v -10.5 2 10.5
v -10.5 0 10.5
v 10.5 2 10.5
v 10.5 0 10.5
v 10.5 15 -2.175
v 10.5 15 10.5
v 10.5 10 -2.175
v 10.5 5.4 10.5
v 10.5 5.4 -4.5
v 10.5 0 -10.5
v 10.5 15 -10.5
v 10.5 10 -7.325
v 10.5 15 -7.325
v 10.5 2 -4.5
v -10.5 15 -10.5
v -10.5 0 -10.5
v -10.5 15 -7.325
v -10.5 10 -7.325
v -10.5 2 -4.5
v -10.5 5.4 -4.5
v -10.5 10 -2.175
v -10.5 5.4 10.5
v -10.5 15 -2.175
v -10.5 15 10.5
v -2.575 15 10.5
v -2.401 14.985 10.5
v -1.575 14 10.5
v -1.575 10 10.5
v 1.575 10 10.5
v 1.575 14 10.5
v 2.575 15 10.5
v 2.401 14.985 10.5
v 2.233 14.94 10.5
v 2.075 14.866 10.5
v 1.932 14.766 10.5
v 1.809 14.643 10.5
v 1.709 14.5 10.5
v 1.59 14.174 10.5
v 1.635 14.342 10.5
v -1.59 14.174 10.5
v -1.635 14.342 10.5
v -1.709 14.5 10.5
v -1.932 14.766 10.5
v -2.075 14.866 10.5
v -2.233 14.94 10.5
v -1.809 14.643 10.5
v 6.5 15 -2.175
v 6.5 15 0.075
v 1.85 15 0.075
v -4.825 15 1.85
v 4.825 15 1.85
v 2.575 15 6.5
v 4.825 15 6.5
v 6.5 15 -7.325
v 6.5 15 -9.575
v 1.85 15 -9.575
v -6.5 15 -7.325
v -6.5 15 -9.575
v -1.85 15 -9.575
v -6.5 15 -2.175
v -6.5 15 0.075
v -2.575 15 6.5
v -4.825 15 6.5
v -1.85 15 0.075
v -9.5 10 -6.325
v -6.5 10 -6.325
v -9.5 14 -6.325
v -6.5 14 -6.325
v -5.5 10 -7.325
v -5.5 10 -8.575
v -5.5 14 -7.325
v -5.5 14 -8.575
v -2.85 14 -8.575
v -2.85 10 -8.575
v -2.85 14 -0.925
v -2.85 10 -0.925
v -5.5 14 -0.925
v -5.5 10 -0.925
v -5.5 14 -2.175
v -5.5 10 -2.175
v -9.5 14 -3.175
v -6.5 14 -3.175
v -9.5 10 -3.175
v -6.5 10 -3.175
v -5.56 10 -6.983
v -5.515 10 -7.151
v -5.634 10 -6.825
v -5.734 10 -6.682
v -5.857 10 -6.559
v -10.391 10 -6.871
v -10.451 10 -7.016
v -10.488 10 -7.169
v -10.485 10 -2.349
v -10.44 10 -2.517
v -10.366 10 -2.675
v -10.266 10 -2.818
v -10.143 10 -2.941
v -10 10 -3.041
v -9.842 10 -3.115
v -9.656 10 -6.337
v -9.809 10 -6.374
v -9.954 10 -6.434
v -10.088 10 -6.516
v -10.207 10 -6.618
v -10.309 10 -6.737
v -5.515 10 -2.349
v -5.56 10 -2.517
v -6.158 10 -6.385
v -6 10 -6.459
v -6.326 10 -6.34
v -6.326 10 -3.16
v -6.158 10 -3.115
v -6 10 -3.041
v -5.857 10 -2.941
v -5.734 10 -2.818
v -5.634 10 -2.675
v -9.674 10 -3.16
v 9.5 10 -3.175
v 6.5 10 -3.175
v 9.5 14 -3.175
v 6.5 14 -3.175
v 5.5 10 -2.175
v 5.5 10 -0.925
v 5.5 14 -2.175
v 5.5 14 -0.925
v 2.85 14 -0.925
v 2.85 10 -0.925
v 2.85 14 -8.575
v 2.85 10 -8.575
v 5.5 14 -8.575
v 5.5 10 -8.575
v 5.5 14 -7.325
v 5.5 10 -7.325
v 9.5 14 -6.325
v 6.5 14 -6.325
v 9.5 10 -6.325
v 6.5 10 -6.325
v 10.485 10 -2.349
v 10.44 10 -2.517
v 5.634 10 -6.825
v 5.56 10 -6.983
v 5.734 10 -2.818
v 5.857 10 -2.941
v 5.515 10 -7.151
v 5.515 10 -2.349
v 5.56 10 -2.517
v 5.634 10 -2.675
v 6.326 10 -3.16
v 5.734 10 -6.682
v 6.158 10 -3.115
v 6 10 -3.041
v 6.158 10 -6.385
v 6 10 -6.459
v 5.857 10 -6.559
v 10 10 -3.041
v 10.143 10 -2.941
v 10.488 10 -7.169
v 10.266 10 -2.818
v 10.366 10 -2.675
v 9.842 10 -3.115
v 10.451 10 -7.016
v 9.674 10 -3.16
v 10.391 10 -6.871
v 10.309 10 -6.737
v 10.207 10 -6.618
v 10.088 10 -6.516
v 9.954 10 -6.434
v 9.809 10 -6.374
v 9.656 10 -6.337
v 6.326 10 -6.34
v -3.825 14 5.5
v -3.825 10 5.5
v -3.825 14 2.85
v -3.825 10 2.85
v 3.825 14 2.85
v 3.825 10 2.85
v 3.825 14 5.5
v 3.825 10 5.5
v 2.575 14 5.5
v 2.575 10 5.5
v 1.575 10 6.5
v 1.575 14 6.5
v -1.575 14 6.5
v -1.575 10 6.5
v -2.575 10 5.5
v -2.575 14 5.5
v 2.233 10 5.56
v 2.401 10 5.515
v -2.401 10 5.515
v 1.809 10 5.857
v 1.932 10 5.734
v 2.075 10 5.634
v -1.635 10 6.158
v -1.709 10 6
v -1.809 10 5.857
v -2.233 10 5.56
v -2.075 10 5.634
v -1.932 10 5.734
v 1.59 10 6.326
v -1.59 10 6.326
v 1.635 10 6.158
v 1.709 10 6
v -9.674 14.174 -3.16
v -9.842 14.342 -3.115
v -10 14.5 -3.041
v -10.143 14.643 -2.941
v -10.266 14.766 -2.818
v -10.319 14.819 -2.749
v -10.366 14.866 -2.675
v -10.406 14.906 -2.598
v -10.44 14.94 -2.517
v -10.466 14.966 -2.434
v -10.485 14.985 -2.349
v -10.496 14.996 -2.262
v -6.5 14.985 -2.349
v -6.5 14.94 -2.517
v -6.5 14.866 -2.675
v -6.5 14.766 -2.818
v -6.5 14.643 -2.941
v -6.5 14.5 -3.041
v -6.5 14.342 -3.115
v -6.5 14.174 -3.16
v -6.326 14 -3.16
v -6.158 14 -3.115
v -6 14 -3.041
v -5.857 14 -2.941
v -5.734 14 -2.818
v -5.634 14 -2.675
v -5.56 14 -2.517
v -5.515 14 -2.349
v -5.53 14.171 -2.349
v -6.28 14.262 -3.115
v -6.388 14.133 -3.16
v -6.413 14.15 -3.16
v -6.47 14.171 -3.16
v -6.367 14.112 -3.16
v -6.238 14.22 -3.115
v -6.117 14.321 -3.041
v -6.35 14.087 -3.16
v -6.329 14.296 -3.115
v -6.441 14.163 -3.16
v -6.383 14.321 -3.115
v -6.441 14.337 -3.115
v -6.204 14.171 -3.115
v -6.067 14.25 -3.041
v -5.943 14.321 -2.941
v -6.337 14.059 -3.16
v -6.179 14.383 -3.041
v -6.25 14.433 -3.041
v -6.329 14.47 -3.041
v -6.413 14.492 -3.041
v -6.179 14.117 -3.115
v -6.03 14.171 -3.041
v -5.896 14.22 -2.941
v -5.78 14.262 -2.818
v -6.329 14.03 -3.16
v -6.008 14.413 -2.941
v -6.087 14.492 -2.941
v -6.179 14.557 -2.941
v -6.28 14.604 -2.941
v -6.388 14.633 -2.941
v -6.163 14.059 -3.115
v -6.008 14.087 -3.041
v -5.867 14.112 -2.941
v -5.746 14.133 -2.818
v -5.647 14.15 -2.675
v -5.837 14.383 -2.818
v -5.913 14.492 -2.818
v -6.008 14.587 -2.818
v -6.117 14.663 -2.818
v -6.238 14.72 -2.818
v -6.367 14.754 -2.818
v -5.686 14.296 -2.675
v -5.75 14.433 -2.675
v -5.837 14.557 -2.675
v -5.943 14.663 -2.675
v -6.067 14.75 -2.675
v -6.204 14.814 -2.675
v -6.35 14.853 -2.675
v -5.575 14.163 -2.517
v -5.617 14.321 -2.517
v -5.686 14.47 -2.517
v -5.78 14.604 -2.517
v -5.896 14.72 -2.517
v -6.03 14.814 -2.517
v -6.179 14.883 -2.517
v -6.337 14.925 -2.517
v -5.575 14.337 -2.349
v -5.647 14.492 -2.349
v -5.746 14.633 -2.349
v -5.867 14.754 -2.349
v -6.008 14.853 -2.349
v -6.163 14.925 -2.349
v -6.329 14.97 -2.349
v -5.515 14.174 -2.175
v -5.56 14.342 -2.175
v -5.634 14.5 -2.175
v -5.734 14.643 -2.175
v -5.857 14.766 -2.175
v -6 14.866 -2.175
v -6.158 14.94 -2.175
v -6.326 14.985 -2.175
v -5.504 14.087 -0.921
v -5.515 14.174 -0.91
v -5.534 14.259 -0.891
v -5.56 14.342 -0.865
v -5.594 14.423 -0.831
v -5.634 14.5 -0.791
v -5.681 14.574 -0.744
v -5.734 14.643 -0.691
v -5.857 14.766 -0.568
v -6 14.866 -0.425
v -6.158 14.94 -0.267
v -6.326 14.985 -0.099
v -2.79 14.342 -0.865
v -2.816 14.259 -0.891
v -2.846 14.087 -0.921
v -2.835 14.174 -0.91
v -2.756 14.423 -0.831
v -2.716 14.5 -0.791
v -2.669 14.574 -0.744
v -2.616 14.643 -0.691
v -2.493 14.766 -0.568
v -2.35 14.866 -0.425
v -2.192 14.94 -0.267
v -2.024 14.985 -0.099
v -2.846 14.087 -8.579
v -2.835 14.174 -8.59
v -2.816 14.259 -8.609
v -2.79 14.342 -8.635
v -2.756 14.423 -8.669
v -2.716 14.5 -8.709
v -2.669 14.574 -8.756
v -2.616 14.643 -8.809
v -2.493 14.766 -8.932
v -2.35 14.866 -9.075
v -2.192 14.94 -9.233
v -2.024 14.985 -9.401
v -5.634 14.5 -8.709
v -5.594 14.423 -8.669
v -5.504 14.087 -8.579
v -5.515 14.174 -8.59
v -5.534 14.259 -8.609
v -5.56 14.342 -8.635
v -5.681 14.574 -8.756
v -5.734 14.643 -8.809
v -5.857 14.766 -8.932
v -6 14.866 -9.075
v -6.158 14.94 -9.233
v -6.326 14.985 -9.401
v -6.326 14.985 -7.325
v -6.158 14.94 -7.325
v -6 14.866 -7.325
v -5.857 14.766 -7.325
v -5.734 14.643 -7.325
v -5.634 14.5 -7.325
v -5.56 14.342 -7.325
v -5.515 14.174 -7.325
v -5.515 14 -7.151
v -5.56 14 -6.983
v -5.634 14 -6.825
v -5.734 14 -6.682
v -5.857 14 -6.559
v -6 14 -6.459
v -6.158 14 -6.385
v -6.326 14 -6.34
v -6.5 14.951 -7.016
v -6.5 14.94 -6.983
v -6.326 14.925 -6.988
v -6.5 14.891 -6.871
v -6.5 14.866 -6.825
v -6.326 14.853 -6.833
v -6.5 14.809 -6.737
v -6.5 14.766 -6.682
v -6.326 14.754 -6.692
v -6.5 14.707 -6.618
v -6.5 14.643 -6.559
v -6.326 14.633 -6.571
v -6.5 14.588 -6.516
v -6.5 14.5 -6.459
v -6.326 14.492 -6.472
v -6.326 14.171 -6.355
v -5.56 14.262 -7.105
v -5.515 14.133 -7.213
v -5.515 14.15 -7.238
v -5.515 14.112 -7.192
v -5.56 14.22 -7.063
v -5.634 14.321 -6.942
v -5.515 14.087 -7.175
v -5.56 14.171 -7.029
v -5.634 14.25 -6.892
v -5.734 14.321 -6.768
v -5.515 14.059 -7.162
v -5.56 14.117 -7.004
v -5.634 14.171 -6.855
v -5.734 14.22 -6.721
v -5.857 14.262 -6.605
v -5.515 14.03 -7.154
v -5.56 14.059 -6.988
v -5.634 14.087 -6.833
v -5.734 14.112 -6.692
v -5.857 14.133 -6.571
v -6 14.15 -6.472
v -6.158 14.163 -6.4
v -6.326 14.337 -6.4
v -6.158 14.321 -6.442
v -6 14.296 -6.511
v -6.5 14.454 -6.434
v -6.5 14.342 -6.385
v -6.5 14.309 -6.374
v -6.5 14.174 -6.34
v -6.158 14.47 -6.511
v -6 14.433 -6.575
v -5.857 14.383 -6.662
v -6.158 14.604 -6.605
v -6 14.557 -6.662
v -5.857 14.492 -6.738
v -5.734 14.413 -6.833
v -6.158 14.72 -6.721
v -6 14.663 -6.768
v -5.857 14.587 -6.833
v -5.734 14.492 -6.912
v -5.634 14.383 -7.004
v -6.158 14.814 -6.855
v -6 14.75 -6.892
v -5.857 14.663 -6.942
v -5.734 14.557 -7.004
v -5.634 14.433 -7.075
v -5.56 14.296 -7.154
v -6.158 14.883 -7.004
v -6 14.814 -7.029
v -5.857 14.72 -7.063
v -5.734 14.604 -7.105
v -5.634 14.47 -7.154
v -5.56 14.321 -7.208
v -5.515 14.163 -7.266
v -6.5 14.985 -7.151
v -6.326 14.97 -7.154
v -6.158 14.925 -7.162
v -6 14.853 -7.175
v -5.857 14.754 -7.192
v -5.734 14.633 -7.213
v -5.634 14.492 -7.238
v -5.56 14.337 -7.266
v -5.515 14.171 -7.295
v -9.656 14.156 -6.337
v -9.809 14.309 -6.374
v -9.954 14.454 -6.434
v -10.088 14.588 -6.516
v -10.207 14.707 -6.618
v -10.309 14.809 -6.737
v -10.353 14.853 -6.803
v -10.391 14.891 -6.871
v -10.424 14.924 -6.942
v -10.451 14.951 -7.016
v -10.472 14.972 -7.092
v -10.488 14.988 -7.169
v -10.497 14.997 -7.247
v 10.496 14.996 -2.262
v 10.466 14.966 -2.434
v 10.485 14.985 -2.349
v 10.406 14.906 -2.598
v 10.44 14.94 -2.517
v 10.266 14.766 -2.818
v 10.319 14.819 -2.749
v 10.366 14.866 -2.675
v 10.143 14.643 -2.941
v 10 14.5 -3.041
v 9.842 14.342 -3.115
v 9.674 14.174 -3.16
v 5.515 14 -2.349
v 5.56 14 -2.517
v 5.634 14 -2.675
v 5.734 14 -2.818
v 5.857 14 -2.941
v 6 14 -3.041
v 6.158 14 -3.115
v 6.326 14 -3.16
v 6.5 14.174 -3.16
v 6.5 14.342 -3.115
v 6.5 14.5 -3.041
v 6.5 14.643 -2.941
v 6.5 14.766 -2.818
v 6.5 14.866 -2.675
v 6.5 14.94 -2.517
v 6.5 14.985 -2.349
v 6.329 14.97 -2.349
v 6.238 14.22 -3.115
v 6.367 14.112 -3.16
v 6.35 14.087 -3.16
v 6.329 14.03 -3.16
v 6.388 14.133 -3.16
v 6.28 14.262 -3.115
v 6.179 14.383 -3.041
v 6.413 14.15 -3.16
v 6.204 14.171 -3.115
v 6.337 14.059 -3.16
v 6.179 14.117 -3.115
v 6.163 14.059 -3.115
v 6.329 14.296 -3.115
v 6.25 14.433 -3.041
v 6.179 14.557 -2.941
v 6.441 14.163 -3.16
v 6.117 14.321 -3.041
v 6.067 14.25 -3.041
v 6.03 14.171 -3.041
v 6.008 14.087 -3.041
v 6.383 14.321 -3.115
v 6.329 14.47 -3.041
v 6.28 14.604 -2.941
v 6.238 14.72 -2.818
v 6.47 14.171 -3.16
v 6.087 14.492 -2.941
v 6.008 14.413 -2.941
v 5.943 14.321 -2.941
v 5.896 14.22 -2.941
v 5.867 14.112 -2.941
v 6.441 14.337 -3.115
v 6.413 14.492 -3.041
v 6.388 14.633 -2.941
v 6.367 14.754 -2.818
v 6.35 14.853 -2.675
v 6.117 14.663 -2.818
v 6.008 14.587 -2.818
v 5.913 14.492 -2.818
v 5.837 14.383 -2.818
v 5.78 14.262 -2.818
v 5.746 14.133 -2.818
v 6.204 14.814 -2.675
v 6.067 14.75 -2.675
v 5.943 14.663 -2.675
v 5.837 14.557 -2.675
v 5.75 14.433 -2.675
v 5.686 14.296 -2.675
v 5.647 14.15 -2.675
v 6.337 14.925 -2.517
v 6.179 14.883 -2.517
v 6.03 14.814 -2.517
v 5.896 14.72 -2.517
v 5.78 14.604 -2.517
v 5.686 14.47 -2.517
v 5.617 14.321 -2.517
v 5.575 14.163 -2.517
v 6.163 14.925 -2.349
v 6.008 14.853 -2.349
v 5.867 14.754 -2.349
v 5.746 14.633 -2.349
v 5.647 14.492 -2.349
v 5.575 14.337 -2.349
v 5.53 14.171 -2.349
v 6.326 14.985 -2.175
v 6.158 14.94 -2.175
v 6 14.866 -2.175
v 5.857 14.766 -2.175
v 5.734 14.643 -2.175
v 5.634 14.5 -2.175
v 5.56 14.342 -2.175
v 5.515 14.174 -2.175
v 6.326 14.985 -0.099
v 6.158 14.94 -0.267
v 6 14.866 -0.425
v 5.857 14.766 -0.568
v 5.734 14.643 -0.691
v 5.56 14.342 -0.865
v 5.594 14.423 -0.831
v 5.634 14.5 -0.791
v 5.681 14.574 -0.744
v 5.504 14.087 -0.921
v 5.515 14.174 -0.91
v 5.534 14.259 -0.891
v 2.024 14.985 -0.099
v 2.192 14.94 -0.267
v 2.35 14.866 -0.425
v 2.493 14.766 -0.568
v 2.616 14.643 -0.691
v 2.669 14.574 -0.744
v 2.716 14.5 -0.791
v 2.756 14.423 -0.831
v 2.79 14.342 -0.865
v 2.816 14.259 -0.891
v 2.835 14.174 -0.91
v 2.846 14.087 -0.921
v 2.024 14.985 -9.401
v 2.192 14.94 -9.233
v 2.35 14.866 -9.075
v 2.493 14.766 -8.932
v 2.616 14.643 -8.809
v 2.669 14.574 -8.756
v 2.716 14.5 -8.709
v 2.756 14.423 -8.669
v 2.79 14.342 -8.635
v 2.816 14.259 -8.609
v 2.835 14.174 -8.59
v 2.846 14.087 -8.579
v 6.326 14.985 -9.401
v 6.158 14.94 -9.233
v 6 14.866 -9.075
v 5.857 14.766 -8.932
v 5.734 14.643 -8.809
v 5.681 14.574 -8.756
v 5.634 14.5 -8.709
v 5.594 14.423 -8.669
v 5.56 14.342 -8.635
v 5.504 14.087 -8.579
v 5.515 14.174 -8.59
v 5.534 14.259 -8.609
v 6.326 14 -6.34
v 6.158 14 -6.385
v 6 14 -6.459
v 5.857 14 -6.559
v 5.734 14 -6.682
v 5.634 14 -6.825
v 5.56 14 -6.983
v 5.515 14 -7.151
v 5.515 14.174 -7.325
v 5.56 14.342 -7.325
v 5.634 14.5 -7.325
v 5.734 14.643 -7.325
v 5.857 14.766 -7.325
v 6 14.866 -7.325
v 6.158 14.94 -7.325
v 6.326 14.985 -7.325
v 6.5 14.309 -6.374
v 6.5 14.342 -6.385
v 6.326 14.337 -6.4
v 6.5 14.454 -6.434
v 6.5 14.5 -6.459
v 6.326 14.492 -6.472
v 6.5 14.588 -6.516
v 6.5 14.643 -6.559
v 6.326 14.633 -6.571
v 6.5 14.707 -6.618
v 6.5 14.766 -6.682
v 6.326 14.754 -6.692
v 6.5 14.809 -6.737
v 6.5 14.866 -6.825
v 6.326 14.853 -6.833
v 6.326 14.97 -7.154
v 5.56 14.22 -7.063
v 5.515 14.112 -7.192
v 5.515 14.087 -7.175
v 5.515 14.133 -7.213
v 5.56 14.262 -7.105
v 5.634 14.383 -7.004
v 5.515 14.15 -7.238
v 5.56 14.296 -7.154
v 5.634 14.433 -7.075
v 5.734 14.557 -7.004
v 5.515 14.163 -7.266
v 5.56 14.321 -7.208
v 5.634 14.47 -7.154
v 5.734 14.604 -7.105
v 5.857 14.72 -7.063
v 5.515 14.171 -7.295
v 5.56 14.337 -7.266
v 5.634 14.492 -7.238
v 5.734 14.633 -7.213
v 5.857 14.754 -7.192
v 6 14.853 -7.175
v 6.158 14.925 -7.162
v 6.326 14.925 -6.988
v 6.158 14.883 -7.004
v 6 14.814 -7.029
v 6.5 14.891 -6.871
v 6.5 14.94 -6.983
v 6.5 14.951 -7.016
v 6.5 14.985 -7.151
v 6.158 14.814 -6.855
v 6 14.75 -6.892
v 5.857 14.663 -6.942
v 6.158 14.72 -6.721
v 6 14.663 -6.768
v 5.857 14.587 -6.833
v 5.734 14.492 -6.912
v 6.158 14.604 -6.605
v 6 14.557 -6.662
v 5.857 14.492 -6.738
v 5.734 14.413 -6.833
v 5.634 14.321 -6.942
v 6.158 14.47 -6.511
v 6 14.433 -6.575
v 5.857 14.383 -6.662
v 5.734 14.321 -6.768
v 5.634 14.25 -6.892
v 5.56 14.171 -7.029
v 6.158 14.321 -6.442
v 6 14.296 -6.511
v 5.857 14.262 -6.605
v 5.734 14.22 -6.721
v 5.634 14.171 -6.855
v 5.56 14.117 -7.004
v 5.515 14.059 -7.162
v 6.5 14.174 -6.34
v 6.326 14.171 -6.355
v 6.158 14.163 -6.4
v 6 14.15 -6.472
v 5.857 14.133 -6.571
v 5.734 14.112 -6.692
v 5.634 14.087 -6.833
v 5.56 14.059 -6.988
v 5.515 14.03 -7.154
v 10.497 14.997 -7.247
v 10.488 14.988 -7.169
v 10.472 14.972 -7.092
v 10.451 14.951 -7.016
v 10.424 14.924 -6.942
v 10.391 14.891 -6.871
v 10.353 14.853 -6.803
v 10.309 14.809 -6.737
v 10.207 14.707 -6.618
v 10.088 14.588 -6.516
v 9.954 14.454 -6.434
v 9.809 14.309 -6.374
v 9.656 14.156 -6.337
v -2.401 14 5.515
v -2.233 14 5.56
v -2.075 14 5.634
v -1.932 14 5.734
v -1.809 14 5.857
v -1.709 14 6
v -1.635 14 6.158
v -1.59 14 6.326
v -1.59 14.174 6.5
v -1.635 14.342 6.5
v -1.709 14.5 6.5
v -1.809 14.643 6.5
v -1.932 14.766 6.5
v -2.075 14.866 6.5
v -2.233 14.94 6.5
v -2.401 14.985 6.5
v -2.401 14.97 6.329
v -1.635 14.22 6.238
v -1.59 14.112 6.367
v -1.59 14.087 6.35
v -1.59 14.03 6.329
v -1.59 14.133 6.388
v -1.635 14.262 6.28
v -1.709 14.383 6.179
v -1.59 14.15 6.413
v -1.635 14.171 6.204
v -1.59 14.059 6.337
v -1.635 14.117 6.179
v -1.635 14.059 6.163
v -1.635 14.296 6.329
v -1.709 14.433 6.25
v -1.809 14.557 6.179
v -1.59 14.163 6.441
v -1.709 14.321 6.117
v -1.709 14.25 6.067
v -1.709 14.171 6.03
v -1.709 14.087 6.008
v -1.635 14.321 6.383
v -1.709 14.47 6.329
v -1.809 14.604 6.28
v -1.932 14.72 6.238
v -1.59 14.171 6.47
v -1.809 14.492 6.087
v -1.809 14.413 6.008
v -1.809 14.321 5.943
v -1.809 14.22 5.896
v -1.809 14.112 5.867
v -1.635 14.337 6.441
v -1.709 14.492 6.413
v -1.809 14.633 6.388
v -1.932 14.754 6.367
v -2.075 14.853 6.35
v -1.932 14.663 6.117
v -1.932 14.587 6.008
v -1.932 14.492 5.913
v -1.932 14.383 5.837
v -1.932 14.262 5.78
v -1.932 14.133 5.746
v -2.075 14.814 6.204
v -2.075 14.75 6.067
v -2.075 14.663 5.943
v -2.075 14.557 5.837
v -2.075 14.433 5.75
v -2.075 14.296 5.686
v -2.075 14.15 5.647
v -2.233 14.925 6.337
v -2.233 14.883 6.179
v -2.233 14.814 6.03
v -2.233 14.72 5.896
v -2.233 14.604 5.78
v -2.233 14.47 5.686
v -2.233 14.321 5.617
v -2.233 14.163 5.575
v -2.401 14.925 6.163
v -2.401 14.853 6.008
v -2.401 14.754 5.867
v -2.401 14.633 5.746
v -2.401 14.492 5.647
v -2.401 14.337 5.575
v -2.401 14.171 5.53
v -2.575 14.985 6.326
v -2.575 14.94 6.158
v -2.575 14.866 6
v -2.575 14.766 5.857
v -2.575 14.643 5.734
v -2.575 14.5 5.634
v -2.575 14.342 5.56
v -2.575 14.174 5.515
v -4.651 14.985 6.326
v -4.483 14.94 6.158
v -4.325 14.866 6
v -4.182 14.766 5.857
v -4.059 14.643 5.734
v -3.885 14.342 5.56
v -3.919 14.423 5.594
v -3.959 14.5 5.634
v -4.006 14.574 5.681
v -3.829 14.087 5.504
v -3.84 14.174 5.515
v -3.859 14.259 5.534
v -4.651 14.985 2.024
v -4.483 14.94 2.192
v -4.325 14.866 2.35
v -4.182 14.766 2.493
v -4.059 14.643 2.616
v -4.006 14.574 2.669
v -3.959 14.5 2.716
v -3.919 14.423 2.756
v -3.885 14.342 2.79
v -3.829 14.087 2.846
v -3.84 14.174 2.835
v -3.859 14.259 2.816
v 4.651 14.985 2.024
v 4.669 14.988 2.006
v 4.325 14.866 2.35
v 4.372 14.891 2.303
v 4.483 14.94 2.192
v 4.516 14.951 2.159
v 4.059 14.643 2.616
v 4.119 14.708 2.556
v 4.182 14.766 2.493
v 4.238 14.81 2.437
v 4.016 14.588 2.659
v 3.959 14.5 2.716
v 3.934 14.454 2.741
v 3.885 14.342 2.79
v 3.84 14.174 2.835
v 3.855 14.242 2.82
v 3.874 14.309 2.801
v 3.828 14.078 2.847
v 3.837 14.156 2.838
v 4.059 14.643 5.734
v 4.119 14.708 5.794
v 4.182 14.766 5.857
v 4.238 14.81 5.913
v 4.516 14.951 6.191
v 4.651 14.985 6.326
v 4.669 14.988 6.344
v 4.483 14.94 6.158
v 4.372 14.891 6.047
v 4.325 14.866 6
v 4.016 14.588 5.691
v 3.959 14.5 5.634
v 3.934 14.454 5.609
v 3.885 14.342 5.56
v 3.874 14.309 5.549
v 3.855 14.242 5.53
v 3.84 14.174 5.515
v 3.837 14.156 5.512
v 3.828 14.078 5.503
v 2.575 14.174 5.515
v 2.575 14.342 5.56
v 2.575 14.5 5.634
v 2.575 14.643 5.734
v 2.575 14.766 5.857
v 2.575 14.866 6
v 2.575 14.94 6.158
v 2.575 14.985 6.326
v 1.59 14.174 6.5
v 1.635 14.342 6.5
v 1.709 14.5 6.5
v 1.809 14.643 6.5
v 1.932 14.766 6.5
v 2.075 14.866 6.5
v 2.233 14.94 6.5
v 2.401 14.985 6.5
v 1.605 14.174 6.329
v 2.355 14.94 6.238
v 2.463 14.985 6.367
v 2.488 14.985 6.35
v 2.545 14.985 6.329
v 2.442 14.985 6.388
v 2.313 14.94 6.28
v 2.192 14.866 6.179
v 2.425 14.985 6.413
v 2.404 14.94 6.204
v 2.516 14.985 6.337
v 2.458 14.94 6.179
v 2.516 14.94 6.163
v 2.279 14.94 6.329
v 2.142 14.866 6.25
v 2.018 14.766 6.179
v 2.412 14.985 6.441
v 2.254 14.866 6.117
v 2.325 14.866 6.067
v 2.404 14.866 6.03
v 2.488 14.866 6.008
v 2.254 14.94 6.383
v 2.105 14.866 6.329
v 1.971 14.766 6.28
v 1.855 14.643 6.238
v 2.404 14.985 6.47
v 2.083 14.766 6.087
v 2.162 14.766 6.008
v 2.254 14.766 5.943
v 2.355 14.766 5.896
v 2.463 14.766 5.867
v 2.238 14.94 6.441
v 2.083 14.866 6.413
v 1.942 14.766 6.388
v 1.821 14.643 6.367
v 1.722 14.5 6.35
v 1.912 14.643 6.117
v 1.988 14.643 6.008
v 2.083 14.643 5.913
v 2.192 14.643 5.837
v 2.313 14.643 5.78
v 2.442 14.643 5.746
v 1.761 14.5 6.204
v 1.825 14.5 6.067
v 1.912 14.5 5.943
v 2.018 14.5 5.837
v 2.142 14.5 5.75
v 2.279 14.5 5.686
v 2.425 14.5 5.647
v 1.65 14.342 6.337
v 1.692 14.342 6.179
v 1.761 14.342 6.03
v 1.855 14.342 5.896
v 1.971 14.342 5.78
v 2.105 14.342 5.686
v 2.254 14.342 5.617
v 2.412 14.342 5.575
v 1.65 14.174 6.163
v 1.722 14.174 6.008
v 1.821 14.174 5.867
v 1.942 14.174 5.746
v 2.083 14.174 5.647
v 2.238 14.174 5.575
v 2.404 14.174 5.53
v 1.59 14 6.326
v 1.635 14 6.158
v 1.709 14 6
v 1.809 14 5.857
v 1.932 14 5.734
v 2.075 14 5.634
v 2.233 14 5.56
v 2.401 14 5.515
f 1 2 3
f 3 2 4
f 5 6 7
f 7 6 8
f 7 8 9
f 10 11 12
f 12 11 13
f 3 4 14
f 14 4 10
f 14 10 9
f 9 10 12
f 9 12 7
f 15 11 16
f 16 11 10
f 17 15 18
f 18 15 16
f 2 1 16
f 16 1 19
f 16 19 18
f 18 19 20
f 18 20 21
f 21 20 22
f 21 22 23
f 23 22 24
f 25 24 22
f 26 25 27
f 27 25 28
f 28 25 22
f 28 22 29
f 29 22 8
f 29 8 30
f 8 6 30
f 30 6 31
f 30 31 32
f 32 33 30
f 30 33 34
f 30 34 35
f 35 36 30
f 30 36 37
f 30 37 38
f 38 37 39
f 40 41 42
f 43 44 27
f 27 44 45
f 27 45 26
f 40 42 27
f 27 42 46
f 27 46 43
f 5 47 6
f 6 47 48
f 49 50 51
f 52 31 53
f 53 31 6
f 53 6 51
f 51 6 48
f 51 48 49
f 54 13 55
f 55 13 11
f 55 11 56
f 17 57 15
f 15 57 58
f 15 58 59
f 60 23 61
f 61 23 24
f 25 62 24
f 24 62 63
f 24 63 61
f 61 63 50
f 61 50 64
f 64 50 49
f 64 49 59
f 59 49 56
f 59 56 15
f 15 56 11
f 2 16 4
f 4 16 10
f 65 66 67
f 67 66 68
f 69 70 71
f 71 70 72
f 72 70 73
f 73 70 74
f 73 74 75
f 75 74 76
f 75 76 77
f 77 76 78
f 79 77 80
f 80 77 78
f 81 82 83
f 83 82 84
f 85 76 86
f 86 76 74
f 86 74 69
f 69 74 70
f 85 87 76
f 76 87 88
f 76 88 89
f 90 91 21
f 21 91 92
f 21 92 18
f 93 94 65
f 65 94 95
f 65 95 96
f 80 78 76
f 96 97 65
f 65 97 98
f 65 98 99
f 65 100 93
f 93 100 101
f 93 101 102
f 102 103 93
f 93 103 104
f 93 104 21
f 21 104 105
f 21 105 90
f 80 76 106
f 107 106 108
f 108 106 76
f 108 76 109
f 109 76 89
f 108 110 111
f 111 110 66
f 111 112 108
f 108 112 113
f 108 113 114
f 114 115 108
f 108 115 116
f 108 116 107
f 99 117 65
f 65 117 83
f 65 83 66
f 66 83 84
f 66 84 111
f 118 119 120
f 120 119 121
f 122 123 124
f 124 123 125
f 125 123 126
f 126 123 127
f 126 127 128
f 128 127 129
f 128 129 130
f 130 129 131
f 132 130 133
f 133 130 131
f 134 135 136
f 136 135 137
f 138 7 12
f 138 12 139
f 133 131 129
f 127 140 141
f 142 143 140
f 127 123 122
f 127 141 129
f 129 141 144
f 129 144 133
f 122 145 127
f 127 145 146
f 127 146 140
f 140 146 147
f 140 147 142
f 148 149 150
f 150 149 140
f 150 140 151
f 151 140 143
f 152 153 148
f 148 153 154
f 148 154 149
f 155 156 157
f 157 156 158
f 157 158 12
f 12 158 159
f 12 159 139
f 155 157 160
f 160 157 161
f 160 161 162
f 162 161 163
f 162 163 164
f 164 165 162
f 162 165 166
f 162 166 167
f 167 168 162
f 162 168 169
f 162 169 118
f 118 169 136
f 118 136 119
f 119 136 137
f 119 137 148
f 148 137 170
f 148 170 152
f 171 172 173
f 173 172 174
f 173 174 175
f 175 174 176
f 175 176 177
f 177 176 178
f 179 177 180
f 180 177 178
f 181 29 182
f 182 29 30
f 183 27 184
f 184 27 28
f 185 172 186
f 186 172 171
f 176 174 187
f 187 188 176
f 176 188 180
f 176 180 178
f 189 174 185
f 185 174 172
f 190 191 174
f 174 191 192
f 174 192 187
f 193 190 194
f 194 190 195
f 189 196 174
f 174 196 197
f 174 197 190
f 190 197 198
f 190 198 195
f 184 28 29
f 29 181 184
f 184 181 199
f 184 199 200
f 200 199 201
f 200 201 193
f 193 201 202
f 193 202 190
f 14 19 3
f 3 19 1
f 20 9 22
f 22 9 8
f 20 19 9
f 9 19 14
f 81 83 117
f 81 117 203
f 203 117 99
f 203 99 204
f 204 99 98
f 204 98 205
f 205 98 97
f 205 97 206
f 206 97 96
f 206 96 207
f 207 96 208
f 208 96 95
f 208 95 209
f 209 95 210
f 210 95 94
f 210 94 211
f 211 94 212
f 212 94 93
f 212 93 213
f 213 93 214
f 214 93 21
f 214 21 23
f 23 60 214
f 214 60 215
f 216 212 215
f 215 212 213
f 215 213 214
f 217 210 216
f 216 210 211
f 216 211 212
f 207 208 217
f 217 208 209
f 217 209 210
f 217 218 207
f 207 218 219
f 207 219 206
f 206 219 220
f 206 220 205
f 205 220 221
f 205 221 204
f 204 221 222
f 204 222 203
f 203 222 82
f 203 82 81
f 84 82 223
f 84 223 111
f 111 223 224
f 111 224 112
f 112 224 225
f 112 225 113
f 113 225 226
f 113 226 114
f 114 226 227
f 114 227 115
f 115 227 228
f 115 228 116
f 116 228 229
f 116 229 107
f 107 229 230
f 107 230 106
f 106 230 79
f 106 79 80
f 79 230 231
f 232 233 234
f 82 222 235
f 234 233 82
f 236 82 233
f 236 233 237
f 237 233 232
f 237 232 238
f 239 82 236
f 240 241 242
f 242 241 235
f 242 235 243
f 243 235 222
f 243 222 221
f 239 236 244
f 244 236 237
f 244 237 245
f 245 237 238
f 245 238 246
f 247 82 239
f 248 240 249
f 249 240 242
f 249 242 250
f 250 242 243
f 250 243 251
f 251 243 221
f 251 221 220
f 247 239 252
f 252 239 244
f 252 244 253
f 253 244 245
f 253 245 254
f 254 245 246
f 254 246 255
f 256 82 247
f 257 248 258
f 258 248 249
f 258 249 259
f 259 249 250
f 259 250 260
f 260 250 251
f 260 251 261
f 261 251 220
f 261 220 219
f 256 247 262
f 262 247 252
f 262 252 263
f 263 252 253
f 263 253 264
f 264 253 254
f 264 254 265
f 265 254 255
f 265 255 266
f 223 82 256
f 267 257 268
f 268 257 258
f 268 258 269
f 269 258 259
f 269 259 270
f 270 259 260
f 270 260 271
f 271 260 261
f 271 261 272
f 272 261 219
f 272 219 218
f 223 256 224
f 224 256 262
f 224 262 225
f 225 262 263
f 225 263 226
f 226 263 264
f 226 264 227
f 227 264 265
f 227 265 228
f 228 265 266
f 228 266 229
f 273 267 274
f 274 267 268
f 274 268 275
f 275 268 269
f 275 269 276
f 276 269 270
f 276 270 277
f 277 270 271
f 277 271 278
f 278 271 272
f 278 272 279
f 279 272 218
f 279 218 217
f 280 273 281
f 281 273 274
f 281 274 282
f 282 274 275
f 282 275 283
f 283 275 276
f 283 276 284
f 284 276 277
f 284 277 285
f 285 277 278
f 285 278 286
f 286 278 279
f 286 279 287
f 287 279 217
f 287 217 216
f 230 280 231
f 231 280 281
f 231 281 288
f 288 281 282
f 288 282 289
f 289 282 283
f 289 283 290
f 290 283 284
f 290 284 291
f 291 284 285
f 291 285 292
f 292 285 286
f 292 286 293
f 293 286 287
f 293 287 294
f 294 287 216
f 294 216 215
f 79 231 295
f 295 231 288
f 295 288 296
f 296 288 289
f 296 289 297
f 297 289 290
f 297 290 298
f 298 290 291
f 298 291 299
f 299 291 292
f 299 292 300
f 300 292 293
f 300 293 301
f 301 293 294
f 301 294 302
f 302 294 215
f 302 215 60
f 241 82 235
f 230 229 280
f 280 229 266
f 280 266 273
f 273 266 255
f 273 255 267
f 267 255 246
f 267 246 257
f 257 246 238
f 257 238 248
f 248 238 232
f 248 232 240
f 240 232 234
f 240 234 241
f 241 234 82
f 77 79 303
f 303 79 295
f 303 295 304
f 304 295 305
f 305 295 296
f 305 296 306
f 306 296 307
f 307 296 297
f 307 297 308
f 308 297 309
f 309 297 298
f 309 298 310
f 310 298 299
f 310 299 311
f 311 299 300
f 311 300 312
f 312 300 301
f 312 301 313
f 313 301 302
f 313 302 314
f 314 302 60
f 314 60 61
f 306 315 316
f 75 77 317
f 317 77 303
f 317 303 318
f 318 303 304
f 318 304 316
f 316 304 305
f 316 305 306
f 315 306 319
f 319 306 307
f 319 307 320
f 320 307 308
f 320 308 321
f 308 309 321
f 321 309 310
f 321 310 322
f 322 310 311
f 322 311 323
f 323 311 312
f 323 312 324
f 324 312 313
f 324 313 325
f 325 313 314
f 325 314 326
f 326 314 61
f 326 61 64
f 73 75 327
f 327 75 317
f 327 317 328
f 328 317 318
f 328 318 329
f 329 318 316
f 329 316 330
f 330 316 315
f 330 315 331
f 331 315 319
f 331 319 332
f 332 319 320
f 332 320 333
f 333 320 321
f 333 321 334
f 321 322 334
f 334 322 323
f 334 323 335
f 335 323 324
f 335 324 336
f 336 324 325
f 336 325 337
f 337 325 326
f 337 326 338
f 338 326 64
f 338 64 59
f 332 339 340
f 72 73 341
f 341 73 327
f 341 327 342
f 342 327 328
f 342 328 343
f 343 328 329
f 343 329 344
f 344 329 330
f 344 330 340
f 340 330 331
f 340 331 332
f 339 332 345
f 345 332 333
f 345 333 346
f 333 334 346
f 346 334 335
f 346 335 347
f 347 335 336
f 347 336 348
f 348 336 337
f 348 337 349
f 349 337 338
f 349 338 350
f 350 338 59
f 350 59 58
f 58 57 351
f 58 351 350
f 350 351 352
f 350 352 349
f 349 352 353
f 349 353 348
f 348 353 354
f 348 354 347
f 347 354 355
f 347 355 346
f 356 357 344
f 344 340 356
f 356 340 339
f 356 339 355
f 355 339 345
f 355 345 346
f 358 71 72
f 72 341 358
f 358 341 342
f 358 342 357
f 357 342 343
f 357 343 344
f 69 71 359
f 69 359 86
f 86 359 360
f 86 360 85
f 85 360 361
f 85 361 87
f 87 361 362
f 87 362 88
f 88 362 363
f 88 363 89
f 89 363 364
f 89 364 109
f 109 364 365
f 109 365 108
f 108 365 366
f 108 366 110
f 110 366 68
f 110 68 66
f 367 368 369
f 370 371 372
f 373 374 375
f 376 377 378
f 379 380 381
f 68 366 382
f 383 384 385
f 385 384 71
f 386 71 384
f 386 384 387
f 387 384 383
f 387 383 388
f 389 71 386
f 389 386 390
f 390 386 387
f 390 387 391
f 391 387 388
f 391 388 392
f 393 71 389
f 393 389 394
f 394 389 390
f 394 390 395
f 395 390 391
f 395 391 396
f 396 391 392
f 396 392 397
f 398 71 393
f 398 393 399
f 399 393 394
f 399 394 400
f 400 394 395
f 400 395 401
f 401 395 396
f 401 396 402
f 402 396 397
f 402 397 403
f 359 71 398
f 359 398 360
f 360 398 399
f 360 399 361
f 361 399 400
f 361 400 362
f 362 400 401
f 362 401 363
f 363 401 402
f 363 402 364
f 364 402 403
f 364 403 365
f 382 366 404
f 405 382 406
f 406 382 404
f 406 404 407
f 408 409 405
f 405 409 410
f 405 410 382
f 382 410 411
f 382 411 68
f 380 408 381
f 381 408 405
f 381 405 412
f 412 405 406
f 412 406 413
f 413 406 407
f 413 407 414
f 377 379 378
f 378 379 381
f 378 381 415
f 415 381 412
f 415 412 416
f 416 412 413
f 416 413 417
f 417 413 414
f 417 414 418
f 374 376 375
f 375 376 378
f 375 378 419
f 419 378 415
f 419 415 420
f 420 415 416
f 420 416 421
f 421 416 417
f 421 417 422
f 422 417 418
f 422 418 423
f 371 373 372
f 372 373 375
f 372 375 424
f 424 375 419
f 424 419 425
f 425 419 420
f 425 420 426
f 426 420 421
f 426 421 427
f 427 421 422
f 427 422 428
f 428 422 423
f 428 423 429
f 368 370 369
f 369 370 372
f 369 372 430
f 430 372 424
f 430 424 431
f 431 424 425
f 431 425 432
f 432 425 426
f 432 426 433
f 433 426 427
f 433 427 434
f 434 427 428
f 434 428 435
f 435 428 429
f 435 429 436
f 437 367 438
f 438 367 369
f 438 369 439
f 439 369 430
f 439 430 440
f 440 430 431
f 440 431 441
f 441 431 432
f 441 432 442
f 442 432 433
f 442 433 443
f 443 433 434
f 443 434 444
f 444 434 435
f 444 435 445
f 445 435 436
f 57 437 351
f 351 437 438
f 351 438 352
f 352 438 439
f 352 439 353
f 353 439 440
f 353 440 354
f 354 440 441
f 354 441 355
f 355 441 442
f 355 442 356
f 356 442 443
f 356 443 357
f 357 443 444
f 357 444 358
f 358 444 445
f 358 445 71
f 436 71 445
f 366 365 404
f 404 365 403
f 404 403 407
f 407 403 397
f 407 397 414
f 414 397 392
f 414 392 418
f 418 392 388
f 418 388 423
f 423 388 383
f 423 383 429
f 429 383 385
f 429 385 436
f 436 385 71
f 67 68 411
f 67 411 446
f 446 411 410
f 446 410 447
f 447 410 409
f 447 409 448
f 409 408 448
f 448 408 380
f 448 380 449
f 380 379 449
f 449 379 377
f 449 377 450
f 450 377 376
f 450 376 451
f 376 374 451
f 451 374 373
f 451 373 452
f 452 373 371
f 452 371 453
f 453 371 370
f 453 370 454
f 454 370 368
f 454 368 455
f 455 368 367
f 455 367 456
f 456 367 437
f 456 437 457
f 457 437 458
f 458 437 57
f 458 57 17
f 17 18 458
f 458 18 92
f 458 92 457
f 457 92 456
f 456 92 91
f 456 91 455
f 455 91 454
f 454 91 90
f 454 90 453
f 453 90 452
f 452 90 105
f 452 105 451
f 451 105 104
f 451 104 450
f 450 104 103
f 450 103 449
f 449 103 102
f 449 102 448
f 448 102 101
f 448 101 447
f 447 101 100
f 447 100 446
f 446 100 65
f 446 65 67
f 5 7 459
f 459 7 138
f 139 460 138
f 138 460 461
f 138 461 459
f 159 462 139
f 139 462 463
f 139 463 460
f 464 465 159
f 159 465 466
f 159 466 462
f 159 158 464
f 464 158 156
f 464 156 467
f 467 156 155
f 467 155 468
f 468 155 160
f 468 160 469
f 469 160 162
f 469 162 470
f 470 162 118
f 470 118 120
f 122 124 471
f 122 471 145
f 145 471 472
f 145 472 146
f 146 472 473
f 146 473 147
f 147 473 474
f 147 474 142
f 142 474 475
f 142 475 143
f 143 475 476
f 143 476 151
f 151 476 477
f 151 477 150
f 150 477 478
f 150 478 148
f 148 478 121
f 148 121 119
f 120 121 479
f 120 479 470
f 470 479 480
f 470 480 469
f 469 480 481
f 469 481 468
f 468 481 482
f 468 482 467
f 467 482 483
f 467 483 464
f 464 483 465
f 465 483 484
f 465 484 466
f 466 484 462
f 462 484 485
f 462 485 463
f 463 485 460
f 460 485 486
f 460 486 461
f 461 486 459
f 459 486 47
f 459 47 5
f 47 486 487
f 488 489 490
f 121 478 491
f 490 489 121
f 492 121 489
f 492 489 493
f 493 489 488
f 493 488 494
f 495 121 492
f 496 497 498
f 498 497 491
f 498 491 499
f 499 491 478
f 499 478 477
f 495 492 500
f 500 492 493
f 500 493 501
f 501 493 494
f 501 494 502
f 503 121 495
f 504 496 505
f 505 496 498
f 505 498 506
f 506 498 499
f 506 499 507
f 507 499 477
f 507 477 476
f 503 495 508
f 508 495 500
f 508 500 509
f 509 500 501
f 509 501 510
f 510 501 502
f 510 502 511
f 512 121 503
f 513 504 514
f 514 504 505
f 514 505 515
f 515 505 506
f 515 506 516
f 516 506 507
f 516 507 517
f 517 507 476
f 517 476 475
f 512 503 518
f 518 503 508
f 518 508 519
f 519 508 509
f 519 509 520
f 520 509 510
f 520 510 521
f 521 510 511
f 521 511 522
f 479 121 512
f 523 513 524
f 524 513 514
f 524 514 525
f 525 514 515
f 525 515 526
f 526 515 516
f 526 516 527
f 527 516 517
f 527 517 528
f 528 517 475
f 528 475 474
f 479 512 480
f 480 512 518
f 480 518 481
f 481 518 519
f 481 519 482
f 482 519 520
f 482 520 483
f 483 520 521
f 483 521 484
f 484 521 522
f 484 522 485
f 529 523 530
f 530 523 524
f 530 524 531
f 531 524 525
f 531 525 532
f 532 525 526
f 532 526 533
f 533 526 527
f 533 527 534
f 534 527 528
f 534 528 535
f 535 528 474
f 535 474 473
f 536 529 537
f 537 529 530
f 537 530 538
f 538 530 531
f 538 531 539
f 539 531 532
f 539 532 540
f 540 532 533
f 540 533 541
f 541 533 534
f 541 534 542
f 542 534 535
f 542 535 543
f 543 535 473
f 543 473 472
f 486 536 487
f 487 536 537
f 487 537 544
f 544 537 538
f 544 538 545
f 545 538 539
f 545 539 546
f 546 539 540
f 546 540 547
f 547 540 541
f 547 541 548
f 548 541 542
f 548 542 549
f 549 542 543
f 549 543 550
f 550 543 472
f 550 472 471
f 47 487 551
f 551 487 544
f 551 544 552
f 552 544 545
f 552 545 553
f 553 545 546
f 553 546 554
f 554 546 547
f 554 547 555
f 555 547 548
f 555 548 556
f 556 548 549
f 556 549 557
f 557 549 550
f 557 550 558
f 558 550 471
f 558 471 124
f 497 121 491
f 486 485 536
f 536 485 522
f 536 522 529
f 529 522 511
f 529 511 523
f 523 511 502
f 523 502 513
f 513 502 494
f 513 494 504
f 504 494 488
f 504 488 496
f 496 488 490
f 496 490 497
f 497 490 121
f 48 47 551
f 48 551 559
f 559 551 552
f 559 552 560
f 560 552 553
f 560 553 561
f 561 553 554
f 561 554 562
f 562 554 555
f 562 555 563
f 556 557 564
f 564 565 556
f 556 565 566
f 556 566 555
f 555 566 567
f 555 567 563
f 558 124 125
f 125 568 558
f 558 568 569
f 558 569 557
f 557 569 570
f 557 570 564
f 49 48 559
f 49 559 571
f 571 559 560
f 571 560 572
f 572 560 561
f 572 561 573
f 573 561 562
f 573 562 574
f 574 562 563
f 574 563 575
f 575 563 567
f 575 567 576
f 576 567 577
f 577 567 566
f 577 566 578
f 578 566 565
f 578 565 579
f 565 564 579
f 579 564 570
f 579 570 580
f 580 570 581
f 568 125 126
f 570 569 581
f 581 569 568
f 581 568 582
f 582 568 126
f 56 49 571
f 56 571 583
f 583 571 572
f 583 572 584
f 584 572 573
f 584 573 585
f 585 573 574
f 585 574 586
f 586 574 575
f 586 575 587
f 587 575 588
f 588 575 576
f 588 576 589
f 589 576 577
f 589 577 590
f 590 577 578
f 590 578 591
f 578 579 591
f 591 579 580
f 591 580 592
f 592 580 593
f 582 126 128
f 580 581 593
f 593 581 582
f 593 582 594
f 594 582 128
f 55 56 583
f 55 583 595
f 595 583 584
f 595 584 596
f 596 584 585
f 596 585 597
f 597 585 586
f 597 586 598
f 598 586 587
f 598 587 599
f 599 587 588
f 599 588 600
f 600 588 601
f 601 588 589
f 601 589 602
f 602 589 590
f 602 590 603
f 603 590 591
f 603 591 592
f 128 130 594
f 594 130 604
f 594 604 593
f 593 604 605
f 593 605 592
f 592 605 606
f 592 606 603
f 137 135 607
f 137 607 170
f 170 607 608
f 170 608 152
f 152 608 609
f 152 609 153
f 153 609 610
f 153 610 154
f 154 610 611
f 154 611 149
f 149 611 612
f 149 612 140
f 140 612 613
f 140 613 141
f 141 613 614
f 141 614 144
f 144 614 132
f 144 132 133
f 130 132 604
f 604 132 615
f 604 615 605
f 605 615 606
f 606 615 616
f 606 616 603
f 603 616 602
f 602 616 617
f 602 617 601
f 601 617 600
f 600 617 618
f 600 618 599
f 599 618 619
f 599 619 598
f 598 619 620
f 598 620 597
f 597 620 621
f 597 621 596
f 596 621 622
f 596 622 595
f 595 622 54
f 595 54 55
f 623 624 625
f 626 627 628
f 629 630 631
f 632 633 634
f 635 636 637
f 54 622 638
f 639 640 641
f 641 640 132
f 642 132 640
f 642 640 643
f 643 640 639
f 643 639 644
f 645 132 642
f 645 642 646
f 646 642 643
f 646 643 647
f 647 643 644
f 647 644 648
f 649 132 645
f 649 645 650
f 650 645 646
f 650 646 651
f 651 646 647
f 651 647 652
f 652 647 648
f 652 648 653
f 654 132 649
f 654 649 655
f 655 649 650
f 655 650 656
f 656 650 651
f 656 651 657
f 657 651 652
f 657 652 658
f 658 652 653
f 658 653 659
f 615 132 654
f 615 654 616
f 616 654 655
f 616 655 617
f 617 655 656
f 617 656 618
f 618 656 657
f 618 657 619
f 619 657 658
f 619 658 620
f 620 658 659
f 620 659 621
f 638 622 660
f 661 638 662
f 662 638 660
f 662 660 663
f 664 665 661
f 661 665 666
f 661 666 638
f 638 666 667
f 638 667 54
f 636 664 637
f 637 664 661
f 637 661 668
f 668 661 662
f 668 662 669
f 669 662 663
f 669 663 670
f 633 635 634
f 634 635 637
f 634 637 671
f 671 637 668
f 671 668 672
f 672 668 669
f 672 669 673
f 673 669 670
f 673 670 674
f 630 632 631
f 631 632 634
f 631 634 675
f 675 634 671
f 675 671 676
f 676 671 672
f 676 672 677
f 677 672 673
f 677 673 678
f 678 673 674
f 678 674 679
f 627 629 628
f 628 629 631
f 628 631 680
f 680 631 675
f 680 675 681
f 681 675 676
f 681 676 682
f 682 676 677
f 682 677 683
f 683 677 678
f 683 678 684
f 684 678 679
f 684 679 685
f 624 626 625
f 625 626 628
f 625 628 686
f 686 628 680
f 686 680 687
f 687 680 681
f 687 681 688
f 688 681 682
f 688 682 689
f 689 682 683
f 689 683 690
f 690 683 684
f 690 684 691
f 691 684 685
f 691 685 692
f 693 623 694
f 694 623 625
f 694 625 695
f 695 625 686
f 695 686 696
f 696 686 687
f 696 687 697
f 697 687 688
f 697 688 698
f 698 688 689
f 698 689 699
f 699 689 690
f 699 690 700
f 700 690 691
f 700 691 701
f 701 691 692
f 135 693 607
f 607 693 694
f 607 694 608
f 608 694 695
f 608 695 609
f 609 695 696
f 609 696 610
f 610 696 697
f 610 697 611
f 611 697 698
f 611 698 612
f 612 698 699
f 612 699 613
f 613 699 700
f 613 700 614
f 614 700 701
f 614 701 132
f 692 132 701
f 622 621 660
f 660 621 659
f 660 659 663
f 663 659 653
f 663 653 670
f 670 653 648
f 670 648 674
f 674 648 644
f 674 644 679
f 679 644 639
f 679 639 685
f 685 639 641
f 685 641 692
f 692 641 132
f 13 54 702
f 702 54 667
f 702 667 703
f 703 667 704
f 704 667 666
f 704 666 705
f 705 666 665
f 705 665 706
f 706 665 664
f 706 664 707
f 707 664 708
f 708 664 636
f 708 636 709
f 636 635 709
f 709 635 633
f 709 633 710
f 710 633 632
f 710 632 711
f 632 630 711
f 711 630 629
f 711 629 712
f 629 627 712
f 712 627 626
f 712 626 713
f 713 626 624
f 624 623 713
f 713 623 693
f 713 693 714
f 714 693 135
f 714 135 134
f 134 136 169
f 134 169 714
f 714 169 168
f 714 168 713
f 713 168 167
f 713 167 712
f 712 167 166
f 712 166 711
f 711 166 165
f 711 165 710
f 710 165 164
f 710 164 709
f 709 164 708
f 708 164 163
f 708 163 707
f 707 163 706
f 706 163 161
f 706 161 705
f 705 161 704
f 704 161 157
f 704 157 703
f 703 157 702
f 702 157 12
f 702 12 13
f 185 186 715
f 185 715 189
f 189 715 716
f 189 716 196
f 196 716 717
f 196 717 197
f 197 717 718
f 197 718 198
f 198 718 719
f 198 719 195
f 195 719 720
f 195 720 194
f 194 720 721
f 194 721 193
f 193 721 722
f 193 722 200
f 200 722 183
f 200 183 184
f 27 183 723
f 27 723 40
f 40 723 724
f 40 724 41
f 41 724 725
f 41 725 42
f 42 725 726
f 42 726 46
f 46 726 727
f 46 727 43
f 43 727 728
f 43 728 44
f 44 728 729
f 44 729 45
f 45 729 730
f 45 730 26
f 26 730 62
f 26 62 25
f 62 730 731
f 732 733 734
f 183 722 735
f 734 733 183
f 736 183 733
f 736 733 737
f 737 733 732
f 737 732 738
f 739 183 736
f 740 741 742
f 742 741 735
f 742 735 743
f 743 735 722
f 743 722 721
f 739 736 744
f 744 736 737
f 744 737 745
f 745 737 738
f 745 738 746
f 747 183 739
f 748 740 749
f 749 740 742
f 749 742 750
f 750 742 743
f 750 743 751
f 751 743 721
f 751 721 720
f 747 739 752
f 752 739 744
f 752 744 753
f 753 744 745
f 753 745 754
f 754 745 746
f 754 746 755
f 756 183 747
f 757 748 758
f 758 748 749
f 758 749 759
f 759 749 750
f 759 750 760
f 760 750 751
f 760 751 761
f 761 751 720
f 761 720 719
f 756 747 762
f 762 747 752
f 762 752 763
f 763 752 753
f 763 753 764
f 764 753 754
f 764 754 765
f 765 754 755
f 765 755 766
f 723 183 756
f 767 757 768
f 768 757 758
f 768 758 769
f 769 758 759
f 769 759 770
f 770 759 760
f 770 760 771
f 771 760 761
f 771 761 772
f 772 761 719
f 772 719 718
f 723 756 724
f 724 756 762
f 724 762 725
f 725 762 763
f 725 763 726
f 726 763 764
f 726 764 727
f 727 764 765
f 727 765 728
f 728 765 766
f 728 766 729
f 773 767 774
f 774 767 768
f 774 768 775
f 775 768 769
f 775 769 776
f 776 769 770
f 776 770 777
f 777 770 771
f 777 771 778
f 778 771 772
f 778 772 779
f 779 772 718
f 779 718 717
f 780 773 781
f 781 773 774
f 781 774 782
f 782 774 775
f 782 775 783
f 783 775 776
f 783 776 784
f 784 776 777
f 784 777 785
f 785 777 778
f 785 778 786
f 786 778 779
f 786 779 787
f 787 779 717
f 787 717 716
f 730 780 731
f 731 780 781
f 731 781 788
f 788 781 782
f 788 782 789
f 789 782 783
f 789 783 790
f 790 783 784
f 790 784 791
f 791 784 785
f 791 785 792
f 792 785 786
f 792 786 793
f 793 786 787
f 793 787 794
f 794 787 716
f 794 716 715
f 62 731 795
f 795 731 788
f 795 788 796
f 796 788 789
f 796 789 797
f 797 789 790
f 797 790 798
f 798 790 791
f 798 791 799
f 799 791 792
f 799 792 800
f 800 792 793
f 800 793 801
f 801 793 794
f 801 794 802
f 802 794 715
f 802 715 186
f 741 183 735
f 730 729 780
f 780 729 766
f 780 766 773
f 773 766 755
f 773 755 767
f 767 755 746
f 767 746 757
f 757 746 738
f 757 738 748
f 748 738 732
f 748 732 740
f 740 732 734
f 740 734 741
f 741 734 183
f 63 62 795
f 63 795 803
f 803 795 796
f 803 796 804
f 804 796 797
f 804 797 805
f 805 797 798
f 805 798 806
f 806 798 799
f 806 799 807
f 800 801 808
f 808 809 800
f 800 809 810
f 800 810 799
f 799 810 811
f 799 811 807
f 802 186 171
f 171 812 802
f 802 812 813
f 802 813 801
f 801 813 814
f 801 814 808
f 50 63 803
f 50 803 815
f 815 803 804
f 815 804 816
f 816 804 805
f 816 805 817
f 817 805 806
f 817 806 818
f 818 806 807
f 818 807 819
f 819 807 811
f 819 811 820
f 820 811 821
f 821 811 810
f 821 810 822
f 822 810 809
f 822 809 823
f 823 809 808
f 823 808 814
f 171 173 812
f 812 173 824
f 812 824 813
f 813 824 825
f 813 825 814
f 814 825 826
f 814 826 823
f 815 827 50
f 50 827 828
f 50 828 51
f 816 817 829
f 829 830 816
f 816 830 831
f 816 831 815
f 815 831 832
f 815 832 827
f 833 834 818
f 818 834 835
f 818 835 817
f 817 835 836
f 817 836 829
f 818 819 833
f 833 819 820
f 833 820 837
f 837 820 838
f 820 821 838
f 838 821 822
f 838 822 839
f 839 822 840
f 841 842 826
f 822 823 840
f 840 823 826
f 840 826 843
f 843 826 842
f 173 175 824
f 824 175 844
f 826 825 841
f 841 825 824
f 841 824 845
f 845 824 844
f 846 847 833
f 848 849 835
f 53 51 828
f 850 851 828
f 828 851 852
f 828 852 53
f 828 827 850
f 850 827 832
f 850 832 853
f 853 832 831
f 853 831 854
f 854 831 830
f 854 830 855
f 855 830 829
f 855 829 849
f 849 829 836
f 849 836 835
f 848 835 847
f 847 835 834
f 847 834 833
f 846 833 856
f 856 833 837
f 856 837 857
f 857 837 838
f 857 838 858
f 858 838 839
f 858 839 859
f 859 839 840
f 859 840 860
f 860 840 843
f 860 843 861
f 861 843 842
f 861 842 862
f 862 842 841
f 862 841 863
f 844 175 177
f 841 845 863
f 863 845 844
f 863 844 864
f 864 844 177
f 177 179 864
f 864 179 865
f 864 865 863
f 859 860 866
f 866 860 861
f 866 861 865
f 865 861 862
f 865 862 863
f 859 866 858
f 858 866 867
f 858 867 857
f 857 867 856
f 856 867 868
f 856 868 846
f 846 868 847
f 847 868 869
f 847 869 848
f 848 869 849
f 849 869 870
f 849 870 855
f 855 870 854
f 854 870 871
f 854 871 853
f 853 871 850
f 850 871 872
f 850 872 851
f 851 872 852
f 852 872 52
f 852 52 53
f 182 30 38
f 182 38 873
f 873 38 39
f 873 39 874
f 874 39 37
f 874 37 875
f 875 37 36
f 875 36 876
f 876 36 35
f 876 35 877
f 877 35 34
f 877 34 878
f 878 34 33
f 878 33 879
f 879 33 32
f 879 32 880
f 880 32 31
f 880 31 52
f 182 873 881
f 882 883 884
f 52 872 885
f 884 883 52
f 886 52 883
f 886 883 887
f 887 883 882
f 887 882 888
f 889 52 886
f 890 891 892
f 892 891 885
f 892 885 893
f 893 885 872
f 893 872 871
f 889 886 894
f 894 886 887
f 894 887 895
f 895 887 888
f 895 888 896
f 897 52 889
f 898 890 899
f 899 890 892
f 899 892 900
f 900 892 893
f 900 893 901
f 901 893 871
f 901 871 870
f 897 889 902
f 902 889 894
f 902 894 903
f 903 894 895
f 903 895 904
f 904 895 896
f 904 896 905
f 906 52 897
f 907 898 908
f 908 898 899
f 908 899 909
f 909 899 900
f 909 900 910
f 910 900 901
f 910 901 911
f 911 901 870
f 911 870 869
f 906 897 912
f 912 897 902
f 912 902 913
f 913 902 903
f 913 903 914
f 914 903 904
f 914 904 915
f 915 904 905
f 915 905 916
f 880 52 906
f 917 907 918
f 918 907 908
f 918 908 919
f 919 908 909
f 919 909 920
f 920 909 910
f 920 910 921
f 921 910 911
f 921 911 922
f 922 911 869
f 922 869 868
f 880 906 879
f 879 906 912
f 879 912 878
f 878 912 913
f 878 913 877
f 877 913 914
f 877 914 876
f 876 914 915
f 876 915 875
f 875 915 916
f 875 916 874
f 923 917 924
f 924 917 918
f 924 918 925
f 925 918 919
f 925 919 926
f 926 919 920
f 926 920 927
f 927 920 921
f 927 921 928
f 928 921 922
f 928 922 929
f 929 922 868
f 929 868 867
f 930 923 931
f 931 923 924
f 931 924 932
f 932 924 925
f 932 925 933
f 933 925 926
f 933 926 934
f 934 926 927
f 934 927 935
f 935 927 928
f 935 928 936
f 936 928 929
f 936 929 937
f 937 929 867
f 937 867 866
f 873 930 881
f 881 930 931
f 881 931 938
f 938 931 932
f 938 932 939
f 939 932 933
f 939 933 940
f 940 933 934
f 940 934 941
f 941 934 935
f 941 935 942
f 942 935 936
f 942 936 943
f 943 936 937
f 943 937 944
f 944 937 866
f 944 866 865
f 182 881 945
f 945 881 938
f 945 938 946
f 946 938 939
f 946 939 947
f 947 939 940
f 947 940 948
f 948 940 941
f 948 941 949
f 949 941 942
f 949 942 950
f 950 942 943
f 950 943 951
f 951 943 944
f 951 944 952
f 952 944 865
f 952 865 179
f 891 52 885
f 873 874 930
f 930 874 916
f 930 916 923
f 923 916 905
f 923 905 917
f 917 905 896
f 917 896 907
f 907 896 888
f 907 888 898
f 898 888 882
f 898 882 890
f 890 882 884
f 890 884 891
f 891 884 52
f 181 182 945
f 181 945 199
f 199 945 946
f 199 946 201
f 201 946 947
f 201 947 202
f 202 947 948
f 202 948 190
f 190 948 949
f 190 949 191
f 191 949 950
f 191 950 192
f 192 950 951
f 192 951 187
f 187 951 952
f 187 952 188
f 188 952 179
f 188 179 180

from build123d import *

# Parameters (mm, degrees)
SKETCH1_W           = 21
SKETCH1_H           = 21
BOSS_EXTRUDE1_DEPTH = 15
CUT_EXTRUDE1_DEPTH  = 5
SKETCH3_W           = 21
SKETCH3_H           = 3.4
CUT_EXTRUDE2_DEPTH  = 15
FILLET1_R           = 1


with BuildPart() as part:
    # Sketch1 → Boss-Extrude1 (new body)
    with BuildSketch(Plane(origin=(0, 0, 0), x_dir=(1, 0, 0), z_dir=(0, 1, 0))):
        Rectangle(SKETCH1_W, SKETCH1_H)
    extrude(amount=BOSS_EXTRUDE1_DEPTH)

    # Sketch2 → Cut-Extrude1 (cut)
    with BuildSketch(Plane(origin=(0, 15, 0), x_dir=(1, 0, 0), z_dir=(0, 1, 0))):
        Polygon((-10.5, 6.325), (-5.5, 6.325), (-5.5, 8.575), (-2.85, 8.575), (-2.85, 0.925), (-5.5, 0.925), (-5.5, 3.175), (-10.5, 3.175), align=None)
        Polygon((10.5, 3.175), (10.5, 6.325), (5.5, 6.325), (5.5, 8.575), (2.85, 8.575), (2.85, 0.925), (5.5, 0.925), (5.5, 3.175), align=None)
        Polygon((-3.825, -2.85), (3.825, -2.85), (3.825, -5.5), (1.575, -5.5), (1.575, -10.5), (-1.575, -10.5), (-1.575, -5.5), (-3.825, -5.5), align=None)
    extrude(amount=-CUT_EXTRUDE1_DEPTH, mode=Mode.SUBTRACT)

    # Sketch3 → Cut-Extrude2 (cut)
    with BuildSketch(Plane.XY.offset(10.5)):
        with Locations((0, 3.7)):
            Rectangle(SKETCH3_W, SKETCH3_H)
    extrude(amount=-CUT_EXTRUDE2_DEPTH, mode=Mode.SUBTRACT)

    # Fillet1
    fillet1_edges = [part.edges().sort_by_distance(p)[0] for p in [
        (1.575, 12.5, 5.5),
        (-1.575, 12.5, 5.5),
        (-3.825, 15, 4.175),
        (-2.7, 15, 5.5),
        (-1.575, 15, 8),
        (1.575, 15, 8),
        (2.7, 15, 5.5),
        (3.825, 15, 4.175),
        (0, 15, 2.85),
        (10.5, 12.5, -3.175),
        (5.5, 12.5, -3.175),
        (5.5, 12.5, -6.325),
        (10.5, 12.5, -6.325),
        (8, 15, -3.175),
        (8, 15, -6.325),
        (5.5, 15, -7.45),
        (4.175, 15, -8.575),
        (2.85, 15, -4.75),
        (4.175, 15, -0.925),
        (5.5, 15, -2.05),
        (-10.5, 12.5, -3.175),
        (-10.5, 12.5, -6.325),
        (-5.5, 12.5, -6.325),
        (-5.5, 12.5, -3.175),
        (-8, 15, -3.175),
        (-5.5, 15, -2.05),
        (-4.175, 15, -0.925),
        (-2.85, 15, -4.75),
        (-4.175, 15, -8.575),
        (-5.5, 15, -7.45),
        (-8, 15, -6.325),
    ]]
    fillet(fillet1_edges, radius=FILLET1_R)


solid = part.part
